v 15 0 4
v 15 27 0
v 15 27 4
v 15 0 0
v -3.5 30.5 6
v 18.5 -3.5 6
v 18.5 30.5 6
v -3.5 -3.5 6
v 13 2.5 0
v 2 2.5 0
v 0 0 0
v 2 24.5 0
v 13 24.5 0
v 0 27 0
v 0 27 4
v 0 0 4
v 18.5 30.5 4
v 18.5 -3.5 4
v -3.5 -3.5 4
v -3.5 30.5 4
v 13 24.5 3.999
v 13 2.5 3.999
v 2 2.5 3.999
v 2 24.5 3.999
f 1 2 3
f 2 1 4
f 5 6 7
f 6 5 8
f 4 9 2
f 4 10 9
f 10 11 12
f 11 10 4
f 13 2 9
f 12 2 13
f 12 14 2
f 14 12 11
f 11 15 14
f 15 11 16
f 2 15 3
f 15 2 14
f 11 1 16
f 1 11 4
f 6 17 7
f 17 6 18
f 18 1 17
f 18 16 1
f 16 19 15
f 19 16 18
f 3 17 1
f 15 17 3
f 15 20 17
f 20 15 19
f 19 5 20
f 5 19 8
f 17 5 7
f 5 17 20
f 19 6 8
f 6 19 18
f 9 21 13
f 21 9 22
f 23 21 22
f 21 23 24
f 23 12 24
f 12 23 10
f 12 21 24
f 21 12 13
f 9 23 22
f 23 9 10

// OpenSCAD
//
// ktRACK20
//

gap1 = 0.001;
gap2 = 0.002;
th = 2;
x2 = 10+1;
y2 = 21+1;
z2 = 5+1-2;
x = 16-1;
y = 28-1;
z = z2+(x-x2)/2;
x3 = x + 7;
y3 = y + 7;
z3 = (x-x2)/2;


difference()
{
    union()
    {
        cube([x, y, z]);
        translate([-(x3-x)/2, -(y3-y)/2, z-z3]) cube([x3, y3, z3]);
    }

    translate([(x-x2)/2, (y-y2)/2, 0-gap1]) cube([x2, y2, z2]);

}
